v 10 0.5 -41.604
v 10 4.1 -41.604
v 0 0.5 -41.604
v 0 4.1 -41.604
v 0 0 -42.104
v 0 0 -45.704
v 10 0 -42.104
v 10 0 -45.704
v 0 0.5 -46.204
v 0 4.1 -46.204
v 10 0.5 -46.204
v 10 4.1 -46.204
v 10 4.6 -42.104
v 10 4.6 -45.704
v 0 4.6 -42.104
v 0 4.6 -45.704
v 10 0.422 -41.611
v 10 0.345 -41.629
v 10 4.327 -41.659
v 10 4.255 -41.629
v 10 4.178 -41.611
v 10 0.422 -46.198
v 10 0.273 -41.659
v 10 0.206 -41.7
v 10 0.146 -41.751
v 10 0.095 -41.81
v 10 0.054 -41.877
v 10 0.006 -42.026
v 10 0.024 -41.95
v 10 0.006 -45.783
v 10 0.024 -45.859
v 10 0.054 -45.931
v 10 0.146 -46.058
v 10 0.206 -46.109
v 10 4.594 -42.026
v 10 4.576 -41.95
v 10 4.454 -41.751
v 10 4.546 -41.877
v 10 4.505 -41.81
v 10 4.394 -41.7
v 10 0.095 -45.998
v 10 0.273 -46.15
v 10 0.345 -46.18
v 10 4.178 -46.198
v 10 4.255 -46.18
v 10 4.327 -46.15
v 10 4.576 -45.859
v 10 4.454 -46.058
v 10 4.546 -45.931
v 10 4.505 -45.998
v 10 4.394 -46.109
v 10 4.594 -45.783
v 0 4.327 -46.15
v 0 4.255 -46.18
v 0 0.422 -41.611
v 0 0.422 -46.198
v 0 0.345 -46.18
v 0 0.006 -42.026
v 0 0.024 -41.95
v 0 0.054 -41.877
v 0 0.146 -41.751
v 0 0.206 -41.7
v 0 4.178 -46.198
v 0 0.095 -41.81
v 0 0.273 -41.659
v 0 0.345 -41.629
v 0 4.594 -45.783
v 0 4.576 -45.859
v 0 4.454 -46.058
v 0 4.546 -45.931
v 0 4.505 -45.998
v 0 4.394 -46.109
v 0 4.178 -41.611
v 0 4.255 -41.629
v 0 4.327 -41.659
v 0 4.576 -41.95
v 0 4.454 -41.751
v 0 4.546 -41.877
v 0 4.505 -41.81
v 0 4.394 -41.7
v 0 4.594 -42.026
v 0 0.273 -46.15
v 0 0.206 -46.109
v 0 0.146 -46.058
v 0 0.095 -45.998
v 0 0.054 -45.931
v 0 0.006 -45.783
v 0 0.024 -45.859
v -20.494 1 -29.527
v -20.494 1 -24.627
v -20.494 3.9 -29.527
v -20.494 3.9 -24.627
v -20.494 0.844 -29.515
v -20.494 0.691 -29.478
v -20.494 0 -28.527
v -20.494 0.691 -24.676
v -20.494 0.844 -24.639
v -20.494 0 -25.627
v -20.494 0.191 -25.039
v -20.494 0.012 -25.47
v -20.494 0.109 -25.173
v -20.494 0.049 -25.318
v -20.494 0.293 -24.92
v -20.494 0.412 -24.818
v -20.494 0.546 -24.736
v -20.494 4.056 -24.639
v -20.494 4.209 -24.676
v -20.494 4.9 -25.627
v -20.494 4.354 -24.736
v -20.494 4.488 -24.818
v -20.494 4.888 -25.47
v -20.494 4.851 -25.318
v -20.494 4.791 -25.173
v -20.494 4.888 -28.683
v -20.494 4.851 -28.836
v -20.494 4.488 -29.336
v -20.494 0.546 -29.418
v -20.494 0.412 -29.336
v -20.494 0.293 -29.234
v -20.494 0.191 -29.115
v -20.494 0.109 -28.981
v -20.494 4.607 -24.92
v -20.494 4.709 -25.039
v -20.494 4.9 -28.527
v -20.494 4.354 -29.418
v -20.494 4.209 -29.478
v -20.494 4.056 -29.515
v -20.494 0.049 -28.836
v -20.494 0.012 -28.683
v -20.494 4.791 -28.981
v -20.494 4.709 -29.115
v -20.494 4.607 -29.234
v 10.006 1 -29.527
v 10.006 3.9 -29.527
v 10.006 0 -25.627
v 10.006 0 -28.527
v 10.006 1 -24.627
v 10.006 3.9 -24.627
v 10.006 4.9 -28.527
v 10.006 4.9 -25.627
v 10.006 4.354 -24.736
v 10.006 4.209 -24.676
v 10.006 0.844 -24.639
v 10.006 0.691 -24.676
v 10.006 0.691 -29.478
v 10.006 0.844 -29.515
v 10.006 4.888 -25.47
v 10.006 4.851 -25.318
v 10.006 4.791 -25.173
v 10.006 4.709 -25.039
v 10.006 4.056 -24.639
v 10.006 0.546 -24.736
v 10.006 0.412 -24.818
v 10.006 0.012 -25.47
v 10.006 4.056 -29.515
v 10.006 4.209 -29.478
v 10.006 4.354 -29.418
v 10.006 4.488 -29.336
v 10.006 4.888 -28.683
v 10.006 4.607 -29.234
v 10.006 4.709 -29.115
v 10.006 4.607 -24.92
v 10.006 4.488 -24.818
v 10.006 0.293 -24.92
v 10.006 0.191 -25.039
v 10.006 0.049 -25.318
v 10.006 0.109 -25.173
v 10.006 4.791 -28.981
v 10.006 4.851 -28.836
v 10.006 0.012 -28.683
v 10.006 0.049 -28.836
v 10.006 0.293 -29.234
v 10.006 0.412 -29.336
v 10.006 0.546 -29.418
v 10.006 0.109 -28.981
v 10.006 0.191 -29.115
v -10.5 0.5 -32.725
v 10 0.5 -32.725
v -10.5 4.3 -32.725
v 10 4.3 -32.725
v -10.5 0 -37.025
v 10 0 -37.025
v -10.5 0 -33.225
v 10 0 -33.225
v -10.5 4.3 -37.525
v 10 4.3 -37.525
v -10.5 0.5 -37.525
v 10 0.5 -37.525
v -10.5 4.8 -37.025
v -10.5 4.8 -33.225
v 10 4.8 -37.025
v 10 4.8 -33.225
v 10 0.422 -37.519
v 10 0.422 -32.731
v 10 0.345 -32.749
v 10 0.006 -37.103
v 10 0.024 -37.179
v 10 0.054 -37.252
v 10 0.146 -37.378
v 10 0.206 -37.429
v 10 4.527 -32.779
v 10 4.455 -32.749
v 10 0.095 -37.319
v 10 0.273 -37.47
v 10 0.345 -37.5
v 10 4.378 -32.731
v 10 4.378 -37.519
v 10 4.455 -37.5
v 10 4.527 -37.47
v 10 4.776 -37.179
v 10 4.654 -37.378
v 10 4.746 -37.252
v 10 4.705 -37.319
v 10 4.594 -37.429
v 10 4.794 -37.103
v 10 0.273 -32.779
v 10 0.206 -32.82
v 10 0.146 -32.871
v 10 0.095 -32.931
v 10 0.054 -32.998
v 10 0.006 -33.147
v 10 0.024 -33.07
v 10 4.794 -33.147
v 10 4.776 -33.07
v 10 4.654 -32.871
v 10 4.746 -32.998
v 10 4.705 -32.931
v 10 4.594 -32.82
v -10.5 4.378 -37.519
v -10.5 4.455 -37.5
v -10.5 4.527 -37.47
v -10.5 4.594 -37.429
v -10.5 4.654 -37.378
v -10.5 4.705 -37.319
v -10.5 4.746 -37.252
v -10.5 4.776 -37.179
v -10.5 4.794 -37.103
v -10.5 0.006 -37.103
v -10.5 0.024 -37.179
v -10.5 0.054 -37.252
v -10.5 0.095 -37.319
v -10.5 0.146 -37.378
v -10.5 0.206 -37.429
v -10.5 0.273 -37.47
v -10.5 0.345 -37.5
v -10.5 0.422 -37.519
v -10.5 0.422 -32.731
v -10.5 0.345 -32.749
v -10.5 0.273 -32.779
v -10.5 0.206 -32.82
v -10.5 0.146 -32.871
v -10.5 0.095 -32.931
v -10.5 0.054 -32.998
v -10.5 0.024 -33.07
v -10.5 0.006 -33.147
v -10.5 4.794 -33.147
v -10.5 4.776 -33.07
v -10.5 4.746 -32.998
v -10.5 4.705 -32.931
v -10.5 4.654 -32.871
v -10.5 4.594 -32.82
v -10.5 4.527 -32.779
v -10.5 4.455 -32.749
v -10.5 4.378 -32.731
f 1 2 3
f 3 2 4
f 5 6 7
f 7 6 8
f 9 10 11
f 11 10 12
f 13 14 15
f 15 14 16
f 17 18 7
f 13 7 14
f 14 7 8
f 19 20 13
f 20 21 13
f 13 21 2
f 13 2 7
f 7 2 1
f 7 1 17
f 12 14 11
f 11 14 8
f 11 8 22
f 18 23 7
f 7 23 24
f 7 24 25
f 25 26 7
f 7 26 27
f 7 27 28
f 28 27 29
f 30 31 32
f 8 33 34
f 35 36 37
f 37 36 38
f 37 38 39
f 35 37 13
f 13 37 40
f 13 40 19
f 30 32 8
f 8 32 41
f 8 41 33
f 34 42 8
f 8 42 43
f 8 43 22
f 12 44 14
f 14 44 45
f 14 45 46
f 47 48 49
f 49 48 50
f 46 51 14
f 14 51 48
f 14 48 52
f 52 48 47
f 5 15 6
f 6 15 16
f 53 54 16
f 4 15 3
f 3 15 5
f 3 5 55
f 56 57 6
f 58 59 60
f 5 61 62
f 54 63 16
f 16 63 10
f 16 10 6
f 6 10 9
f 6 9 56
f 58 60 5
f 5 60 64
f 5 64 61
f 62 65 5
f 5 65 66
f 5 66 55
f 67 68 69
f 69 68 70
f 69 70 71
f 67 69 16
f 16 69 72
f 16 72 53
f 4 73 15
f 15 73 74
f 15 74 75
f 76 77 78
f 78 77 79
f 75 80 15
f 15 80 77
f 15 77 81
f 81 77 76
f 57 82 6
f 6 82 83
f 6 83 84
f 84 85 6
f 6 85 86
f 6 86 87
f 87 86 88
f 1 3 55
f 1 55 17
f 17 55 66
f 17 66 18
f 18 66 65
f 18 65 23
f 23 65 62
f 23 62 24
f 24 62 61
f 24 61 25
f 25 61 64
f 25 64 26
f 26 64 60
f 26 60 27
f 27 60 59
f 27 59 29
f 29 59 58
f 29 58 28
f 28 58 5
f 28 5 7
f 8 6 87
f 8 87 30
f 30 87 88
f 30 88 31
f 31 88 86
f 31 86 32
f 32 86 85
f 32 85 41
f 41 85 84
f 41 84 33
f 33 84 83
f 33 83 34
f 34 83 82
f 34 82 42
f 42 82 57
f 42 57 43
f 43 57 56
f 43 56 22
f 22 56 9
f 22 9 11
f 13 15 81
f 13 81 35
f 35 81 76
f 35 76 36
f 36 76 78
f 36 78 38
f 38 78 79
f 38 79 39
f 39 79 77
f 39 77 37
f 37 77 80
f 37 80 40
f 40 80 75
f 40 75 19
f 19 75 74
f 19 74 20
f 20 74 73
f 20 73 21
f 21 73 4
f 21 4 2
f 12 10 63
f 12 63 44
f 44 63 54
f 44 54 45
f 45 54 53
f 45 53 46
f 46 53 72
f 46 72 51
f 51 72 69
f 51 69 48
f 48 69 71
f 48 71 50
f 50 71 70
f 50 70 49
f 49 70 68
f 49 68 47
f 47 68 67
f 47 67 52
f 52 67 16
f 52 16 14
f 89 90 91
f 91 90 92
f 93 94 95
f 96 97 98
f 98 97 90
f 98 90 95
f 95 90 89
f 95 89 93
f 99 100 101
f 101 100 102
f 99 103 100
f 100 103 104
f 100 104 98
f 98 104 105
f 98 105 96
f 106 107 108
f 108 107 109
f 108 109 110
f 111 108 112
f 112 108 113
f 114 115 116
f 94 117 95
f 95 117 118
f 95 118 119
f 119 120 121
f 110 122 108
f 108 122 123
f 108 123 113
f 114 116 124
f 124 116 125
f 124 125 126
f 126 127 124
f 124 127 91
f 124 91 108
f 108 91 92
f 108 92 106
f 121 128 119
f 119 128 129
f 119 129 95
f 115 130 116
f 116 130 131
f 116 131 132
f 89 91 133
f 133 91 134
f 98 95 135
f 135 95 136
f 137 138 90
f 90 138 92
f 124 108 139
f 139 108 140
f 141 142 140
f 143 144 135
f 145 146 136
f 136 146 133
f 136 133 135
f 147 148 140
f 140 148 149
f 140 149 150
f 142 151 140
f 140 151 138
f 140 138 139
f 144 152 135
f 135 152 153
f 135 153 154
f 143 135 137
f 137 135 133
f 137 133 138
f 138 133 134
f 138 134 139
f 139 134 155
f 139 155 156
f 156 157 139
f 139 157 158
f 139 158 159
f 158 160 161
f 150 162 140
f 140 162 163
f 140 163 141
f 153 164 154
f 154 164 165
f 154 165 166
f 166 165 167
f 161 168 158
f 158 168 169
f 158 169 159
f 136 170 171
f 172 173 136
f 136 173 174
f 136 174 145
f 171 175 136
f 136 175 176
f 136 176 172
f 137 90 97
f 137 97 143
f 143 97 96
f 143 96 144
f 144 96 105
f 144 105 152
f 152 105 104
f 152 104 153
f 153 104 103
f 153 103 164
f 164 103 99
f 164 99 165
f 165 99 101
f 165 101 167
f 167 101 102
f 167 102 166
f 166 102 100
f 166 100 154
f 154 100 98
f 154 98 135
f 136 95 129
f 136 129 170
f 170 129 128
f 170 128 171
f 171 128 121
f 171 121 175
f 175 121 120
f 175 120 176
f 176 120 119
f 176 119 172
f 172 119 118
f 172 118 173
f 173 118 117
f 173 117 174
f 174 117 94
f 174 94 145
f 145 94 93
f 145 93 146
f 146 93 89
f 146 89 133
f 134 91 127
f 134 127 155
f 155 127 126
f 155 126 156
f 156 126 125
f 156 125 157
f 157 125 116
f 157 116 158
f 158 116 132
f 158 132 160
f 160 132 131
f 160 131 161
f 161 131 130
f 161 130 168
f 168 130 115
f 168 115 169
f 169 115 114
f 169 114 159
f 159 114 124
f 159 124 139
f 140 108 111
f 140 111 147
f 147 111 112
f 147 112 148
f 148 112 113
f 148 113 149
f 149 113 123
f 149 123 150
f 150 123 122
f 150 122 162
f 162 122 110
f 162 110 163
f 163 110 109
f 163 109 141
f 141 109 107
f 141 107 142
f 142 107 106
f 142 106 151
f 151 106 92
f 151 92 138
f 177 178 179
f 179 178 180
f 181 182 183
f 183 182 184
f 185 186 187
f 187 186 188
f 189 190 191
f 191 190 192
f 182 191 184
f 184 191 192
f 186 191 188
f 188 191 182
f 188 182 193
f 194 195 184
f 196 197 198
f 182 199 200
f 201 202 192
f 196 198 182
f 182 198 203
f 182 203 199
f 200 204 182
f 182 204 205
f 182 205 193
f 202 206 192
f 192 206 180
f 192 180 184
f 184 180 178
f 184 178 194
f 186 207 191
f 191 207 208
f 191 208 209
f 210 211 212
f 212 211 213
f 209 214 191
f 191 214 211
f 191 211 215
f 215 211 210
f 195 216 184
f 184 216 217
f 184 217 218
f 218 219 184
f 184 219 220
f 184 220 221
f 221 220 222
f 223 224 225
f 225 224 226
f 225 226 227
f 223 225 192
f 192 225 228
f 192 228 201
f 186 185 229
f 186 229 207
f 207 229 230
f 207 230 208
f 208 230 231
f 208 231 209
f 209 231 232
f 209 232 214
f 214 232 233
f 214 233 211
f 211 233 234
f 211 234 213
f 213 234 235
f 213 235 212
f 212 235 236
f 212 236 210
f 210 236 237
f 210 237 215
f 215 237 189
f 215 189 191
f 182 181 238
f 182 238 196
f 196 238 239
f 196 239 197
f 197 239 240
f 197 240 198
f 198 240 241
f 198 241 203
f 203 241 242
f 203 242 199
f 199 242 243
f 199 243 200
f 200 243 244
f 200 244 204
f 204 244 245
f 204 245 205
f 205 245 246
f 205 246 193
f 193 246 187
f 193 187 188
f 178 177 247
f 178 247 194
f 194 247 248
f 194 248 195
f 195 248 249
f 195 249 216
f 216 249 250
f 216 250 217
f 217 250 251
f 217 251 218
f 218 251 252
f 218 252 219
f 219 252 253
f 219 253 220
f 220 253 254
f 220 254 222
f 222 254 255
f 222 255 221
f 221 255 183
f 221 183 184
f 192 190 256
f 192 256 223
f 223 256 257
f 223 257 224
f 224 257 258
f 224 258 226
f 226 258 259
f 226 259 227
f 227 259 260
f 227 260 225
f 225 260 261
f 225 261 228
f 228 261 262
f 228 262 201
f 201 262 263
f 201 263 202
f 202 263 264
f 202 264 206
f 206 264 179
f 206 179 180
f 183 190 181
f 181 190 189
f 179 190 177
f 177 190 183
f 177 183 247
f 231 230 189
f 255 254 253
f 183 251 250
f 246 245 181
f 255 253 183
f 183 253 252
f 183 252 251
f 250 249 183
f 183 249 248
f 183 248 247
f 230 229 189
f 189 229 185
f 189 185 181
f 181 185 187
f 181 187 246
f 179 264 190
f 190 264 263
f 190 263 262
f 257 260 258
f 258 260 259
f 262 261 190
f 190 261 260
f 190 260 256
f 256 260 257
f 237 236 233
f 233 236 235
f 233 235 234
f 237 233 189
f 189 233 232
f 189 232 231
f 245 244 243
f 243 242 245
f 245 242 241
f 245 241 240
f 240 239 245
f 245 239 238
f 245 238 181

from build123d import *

# Parameters (mm, degrees)
SKETCH_1_R          = 4.9
SKETCH_1_W          = 5
SKETCH_1_H          = 5
EXTRUDE_1_DEPTH     = 5
SKETCH_2_W          = 10
SKETCH_2_H          = 5
EXTRUDE_2_DEPTH     = 5
SKETCH_3_R          = 5.914940822
CUT_EXTRUDE_1_DEPTH = 10
CUT_EXTRUDE_2_DEPTH = 10
SKETCH_5_W          = 4.8
SKETCH_5_H          = 4.8
EXTRUDE_3_DEPTH     = 10
SKETCH_5_W_2        = 4.6
SKETCH_5_H_2        = 4.6
EXTRUDE_3_2_DEPTH   = 10
SKETCH_5_W_3        = 4.5
SKETCH_5_H_3        = 4.5
EXTRUDE_3_3_DEPTH   = 10
FILLET_1_R          = 0.5
FILLET_2_R          = 0.5
FILLET_3_R          = 0.5
FILLET_4_R          = 0.5
SKETCH_6_W          = 4.9
SKETCH_6_H          = 4.9
EXTRUDE_4_DEPTH     = 20.5
FILLET_5_R          = 1
EXTRUDE_5_DEPTH     = 10.5
SKETCH_9_R          = 3.402598628
CUT_EXTRUDE_3_DEPTH = 10.5


with BuildPart() as part:
    # 草图1 → 凸台-拉伸1 (new body)
    with BuildSketch(Plane(origin=(0, 0, 0), x_dir=(1, 0, 0), z_dir=(0, 1, 0))):
        with Locations((-9.777161154, 17.932244479)):
            Circle(SKETCH_1_R)
        with Locations((-9.777161154, 17.932244479)):
            Rectangle(SKETCH_1_W, SKETCH_1_H, mode=Mode.SUBTRACT)
    extrude(amount=EXTRUDE_1_DEPTH)

    # 草图3 → 切除-拉伸1 (cut)
    with BuildSketch(Plane(origin=(0, 5, 0), x_dir=(1, 0, 0), z_dir=(0, 1, 0))):
        with Locations((-9.777161154, 17.932244479)):
            Circle(SKETCH_3_R)
    extrude(amount=-CUT_EXTRUDE_1_DEPTH, mode=Mode.SUBTRACT)


with BuildPart() as body_2:
    # 草图2 → 凸台-拉伸2 (new body)
    with BuildSketch(Plane(origin=(0, 0, 0), x_dir=(1, 0, 0), z_dir=(0, 1, 0))):
        with Locations((-15.49352073, 27.026927295)):
            Rectangle(SKETCH_2_W, SKETCH_2_H)
    extrude(amount=EXTRUDE_2_DEPTH)

    # 草图4 → 切除-拉伸2 (cut)
    with BuildSketch(Plane.ZY.offset(20.49352073)):
        Polygon((-29.526927295, 4.9), (-29.526927295, 5), (-24.526927295, 5), (-24.526927295, 0), (-24.626927295, 0), (-24.626927295, 4.9), align=None)
    extrude(amount=-CUT_EXTRUDE_2_DEPTH, mode=Mode.SUBTRACT)

    # 圆角1
    fillet_1_edges = [body_2.edges().sort_by_distance(p)[0] for p in [
        (-15.49352073, 0, -24.626927295),
        (-15.49352073, 4.9, -24.626927295),
        (-15.49352073, 4.9, -29.526927295),
        (-15.49352073, 0, -29.526927295),
    ]]
    fillet(fillet_1_edges, radius=FILLET_1_R)

    # 草图6 → 凸台-拉伸4 (add)
    with BuildSketch(Plane(origin=(-10.49352073, 0, 0), x_dir=(0, 0, -1), z_dir=(1, 0, 0))):
        with Locations((27.076927295, 2.45)):
            Rectangle(SKETCH_6_W, SKETCH_6_H)
    extrude(amount=EXTRUDE_4_DEPTH)

    # 圆角5
    fillet_5_edges = [body_2.edges().sort_by_distance(p)[0] for p in [
        (-0.24352073, 0, -24.626927295),
        (-0.24352073, 0, -29.526927295),
        (-0.24352073, 4.9, -29.526927295),
        (-0.24352073, 4.9, -24.626927295),
    ]]
    fillet(fillet_5_edges, radius=FILLET_5_R)


with BuildPart() as body_2_2:
    # 草图5 → 凸台-拉伸3 (new body)
    with BuildSketch(Plane(origin=(0, 0, 0), x_dir=(0, 0, -1), z_dir=(1, 0, 0))):
        with Locations((35.124788923, 2.4)):
            Rectangle(SKETCH_5_W, SKETCH_5_H)
    extrude(amount=EXTRUDE_3_DEPTH)

    # 圆角2
    fillet_2_edges = [body_2_2.edges().sort_by_distance(p)[0] for p in [
        (5, 4.8, -32.724788923),
        (5, 4.8, -37.524788923),
        (5, 0, -37.524788923),
        (5, 0, -32.724788923),
    ]]
    fillet(fillet_2_edges, radius=FILLET_2_R)

    # 草图8 → 凸台-拉伸5 (add)
    with BuildSketch(Plane.ZY):
        with BuildLine():
            Line((-33.224788923, 4.8), (-37.024788923, 4.8))
            ThreePointArc((-37.024788923, 4.8), (-37.378342314, 4.653553391), (-37.524788923, 4.3))
            Line((-37.524788923, 4.3), (-37.524788923, 0.5))
            ThreePointArc((-37.524788923, 0.5), (-37.378342314, 0.146446609), (-37.024788923, 0))
            Line((-37.024788923, 0), (-33.224788923, 0))
            ThreePointArc((-33.224788923, 0), (-32.871235532, 0.146446609), (-32.724788923, 0.5))
            Line((-32.724788923, 0.5), (-32.724788923, 4.3))
            ThreePointArc((-32.724788923, 4.3), (-32.871235532, 4.653553391), (-33.224788923, 4.8))
        make_face()
    extrude(amount=EXTRUDE_5_DEPTH)


with BuildPart() as body_3:
    # 草图5 → Extrude 3 2 (new body)
    with BuildSketch(Plane(origin=(0, 0, 0), x_dir=(0, 0, -1), z_dir=(1, 0, 0))):
        with Locations((43.904383403, 2.3)):
            Rectangle(SKETCH_5_W_2, SKETCH_5_H_2)
    extrude(amount=EXTRUDE_3_2_DEPTH)

    # 圆角3
    fillet_3_edges = [body_3.edges().sort_by_distance(p)[0] for p in [
        (5, 4.6, -41.604383403),
        (5, 4.6, -46.204383403),
        (5, 0, -46.204383403),
        (5, 0, -41.604383403),
    ]]
    fillet(fillet_3_edges, radius=FILLET_3_R)


with BuildPart() as body_4:
    # 草图5 → Extrude 3 3 (new body)
    with BuildSketch(Plane(origin=(0, 0, 0), x_dir=(0, 0, -1), z_dir=(1, 0, 0))):
        with Locations((50.920405069, 2.25)):
            Rectangle(SKETCH_5_W_3, SKETCH_5_H_3)
    extrude(amount=EXTRUDE_3_3_DEPTH)

    # 圆角4
    fillet_4_edges = [body_4.edges().sort_by_distance(p)[0] for p in [
        (5, 4.5, -48.670405069),
        (5, 4.5, -53.170405069),
        (5, 0, -53.170405069),
        (5, 0, -48.670405069),
    ]]
    fillet(fillet_4_edges, radius=FILLET_4_R)

    # 草图9 → 切除-拉伸3 (cut)
    with BuildSketch(Plane.ZY):
        with Locations((-50.9868081, 2.355561391)):
            Circle(SKETCH_9_R)
    extrude(amount=-CUT_EXTRUDE_3_DEPTH, mode=Mode.SUBTRACT)


solid = Compound([body_2.part, body_2_2.part, body_3.part])
